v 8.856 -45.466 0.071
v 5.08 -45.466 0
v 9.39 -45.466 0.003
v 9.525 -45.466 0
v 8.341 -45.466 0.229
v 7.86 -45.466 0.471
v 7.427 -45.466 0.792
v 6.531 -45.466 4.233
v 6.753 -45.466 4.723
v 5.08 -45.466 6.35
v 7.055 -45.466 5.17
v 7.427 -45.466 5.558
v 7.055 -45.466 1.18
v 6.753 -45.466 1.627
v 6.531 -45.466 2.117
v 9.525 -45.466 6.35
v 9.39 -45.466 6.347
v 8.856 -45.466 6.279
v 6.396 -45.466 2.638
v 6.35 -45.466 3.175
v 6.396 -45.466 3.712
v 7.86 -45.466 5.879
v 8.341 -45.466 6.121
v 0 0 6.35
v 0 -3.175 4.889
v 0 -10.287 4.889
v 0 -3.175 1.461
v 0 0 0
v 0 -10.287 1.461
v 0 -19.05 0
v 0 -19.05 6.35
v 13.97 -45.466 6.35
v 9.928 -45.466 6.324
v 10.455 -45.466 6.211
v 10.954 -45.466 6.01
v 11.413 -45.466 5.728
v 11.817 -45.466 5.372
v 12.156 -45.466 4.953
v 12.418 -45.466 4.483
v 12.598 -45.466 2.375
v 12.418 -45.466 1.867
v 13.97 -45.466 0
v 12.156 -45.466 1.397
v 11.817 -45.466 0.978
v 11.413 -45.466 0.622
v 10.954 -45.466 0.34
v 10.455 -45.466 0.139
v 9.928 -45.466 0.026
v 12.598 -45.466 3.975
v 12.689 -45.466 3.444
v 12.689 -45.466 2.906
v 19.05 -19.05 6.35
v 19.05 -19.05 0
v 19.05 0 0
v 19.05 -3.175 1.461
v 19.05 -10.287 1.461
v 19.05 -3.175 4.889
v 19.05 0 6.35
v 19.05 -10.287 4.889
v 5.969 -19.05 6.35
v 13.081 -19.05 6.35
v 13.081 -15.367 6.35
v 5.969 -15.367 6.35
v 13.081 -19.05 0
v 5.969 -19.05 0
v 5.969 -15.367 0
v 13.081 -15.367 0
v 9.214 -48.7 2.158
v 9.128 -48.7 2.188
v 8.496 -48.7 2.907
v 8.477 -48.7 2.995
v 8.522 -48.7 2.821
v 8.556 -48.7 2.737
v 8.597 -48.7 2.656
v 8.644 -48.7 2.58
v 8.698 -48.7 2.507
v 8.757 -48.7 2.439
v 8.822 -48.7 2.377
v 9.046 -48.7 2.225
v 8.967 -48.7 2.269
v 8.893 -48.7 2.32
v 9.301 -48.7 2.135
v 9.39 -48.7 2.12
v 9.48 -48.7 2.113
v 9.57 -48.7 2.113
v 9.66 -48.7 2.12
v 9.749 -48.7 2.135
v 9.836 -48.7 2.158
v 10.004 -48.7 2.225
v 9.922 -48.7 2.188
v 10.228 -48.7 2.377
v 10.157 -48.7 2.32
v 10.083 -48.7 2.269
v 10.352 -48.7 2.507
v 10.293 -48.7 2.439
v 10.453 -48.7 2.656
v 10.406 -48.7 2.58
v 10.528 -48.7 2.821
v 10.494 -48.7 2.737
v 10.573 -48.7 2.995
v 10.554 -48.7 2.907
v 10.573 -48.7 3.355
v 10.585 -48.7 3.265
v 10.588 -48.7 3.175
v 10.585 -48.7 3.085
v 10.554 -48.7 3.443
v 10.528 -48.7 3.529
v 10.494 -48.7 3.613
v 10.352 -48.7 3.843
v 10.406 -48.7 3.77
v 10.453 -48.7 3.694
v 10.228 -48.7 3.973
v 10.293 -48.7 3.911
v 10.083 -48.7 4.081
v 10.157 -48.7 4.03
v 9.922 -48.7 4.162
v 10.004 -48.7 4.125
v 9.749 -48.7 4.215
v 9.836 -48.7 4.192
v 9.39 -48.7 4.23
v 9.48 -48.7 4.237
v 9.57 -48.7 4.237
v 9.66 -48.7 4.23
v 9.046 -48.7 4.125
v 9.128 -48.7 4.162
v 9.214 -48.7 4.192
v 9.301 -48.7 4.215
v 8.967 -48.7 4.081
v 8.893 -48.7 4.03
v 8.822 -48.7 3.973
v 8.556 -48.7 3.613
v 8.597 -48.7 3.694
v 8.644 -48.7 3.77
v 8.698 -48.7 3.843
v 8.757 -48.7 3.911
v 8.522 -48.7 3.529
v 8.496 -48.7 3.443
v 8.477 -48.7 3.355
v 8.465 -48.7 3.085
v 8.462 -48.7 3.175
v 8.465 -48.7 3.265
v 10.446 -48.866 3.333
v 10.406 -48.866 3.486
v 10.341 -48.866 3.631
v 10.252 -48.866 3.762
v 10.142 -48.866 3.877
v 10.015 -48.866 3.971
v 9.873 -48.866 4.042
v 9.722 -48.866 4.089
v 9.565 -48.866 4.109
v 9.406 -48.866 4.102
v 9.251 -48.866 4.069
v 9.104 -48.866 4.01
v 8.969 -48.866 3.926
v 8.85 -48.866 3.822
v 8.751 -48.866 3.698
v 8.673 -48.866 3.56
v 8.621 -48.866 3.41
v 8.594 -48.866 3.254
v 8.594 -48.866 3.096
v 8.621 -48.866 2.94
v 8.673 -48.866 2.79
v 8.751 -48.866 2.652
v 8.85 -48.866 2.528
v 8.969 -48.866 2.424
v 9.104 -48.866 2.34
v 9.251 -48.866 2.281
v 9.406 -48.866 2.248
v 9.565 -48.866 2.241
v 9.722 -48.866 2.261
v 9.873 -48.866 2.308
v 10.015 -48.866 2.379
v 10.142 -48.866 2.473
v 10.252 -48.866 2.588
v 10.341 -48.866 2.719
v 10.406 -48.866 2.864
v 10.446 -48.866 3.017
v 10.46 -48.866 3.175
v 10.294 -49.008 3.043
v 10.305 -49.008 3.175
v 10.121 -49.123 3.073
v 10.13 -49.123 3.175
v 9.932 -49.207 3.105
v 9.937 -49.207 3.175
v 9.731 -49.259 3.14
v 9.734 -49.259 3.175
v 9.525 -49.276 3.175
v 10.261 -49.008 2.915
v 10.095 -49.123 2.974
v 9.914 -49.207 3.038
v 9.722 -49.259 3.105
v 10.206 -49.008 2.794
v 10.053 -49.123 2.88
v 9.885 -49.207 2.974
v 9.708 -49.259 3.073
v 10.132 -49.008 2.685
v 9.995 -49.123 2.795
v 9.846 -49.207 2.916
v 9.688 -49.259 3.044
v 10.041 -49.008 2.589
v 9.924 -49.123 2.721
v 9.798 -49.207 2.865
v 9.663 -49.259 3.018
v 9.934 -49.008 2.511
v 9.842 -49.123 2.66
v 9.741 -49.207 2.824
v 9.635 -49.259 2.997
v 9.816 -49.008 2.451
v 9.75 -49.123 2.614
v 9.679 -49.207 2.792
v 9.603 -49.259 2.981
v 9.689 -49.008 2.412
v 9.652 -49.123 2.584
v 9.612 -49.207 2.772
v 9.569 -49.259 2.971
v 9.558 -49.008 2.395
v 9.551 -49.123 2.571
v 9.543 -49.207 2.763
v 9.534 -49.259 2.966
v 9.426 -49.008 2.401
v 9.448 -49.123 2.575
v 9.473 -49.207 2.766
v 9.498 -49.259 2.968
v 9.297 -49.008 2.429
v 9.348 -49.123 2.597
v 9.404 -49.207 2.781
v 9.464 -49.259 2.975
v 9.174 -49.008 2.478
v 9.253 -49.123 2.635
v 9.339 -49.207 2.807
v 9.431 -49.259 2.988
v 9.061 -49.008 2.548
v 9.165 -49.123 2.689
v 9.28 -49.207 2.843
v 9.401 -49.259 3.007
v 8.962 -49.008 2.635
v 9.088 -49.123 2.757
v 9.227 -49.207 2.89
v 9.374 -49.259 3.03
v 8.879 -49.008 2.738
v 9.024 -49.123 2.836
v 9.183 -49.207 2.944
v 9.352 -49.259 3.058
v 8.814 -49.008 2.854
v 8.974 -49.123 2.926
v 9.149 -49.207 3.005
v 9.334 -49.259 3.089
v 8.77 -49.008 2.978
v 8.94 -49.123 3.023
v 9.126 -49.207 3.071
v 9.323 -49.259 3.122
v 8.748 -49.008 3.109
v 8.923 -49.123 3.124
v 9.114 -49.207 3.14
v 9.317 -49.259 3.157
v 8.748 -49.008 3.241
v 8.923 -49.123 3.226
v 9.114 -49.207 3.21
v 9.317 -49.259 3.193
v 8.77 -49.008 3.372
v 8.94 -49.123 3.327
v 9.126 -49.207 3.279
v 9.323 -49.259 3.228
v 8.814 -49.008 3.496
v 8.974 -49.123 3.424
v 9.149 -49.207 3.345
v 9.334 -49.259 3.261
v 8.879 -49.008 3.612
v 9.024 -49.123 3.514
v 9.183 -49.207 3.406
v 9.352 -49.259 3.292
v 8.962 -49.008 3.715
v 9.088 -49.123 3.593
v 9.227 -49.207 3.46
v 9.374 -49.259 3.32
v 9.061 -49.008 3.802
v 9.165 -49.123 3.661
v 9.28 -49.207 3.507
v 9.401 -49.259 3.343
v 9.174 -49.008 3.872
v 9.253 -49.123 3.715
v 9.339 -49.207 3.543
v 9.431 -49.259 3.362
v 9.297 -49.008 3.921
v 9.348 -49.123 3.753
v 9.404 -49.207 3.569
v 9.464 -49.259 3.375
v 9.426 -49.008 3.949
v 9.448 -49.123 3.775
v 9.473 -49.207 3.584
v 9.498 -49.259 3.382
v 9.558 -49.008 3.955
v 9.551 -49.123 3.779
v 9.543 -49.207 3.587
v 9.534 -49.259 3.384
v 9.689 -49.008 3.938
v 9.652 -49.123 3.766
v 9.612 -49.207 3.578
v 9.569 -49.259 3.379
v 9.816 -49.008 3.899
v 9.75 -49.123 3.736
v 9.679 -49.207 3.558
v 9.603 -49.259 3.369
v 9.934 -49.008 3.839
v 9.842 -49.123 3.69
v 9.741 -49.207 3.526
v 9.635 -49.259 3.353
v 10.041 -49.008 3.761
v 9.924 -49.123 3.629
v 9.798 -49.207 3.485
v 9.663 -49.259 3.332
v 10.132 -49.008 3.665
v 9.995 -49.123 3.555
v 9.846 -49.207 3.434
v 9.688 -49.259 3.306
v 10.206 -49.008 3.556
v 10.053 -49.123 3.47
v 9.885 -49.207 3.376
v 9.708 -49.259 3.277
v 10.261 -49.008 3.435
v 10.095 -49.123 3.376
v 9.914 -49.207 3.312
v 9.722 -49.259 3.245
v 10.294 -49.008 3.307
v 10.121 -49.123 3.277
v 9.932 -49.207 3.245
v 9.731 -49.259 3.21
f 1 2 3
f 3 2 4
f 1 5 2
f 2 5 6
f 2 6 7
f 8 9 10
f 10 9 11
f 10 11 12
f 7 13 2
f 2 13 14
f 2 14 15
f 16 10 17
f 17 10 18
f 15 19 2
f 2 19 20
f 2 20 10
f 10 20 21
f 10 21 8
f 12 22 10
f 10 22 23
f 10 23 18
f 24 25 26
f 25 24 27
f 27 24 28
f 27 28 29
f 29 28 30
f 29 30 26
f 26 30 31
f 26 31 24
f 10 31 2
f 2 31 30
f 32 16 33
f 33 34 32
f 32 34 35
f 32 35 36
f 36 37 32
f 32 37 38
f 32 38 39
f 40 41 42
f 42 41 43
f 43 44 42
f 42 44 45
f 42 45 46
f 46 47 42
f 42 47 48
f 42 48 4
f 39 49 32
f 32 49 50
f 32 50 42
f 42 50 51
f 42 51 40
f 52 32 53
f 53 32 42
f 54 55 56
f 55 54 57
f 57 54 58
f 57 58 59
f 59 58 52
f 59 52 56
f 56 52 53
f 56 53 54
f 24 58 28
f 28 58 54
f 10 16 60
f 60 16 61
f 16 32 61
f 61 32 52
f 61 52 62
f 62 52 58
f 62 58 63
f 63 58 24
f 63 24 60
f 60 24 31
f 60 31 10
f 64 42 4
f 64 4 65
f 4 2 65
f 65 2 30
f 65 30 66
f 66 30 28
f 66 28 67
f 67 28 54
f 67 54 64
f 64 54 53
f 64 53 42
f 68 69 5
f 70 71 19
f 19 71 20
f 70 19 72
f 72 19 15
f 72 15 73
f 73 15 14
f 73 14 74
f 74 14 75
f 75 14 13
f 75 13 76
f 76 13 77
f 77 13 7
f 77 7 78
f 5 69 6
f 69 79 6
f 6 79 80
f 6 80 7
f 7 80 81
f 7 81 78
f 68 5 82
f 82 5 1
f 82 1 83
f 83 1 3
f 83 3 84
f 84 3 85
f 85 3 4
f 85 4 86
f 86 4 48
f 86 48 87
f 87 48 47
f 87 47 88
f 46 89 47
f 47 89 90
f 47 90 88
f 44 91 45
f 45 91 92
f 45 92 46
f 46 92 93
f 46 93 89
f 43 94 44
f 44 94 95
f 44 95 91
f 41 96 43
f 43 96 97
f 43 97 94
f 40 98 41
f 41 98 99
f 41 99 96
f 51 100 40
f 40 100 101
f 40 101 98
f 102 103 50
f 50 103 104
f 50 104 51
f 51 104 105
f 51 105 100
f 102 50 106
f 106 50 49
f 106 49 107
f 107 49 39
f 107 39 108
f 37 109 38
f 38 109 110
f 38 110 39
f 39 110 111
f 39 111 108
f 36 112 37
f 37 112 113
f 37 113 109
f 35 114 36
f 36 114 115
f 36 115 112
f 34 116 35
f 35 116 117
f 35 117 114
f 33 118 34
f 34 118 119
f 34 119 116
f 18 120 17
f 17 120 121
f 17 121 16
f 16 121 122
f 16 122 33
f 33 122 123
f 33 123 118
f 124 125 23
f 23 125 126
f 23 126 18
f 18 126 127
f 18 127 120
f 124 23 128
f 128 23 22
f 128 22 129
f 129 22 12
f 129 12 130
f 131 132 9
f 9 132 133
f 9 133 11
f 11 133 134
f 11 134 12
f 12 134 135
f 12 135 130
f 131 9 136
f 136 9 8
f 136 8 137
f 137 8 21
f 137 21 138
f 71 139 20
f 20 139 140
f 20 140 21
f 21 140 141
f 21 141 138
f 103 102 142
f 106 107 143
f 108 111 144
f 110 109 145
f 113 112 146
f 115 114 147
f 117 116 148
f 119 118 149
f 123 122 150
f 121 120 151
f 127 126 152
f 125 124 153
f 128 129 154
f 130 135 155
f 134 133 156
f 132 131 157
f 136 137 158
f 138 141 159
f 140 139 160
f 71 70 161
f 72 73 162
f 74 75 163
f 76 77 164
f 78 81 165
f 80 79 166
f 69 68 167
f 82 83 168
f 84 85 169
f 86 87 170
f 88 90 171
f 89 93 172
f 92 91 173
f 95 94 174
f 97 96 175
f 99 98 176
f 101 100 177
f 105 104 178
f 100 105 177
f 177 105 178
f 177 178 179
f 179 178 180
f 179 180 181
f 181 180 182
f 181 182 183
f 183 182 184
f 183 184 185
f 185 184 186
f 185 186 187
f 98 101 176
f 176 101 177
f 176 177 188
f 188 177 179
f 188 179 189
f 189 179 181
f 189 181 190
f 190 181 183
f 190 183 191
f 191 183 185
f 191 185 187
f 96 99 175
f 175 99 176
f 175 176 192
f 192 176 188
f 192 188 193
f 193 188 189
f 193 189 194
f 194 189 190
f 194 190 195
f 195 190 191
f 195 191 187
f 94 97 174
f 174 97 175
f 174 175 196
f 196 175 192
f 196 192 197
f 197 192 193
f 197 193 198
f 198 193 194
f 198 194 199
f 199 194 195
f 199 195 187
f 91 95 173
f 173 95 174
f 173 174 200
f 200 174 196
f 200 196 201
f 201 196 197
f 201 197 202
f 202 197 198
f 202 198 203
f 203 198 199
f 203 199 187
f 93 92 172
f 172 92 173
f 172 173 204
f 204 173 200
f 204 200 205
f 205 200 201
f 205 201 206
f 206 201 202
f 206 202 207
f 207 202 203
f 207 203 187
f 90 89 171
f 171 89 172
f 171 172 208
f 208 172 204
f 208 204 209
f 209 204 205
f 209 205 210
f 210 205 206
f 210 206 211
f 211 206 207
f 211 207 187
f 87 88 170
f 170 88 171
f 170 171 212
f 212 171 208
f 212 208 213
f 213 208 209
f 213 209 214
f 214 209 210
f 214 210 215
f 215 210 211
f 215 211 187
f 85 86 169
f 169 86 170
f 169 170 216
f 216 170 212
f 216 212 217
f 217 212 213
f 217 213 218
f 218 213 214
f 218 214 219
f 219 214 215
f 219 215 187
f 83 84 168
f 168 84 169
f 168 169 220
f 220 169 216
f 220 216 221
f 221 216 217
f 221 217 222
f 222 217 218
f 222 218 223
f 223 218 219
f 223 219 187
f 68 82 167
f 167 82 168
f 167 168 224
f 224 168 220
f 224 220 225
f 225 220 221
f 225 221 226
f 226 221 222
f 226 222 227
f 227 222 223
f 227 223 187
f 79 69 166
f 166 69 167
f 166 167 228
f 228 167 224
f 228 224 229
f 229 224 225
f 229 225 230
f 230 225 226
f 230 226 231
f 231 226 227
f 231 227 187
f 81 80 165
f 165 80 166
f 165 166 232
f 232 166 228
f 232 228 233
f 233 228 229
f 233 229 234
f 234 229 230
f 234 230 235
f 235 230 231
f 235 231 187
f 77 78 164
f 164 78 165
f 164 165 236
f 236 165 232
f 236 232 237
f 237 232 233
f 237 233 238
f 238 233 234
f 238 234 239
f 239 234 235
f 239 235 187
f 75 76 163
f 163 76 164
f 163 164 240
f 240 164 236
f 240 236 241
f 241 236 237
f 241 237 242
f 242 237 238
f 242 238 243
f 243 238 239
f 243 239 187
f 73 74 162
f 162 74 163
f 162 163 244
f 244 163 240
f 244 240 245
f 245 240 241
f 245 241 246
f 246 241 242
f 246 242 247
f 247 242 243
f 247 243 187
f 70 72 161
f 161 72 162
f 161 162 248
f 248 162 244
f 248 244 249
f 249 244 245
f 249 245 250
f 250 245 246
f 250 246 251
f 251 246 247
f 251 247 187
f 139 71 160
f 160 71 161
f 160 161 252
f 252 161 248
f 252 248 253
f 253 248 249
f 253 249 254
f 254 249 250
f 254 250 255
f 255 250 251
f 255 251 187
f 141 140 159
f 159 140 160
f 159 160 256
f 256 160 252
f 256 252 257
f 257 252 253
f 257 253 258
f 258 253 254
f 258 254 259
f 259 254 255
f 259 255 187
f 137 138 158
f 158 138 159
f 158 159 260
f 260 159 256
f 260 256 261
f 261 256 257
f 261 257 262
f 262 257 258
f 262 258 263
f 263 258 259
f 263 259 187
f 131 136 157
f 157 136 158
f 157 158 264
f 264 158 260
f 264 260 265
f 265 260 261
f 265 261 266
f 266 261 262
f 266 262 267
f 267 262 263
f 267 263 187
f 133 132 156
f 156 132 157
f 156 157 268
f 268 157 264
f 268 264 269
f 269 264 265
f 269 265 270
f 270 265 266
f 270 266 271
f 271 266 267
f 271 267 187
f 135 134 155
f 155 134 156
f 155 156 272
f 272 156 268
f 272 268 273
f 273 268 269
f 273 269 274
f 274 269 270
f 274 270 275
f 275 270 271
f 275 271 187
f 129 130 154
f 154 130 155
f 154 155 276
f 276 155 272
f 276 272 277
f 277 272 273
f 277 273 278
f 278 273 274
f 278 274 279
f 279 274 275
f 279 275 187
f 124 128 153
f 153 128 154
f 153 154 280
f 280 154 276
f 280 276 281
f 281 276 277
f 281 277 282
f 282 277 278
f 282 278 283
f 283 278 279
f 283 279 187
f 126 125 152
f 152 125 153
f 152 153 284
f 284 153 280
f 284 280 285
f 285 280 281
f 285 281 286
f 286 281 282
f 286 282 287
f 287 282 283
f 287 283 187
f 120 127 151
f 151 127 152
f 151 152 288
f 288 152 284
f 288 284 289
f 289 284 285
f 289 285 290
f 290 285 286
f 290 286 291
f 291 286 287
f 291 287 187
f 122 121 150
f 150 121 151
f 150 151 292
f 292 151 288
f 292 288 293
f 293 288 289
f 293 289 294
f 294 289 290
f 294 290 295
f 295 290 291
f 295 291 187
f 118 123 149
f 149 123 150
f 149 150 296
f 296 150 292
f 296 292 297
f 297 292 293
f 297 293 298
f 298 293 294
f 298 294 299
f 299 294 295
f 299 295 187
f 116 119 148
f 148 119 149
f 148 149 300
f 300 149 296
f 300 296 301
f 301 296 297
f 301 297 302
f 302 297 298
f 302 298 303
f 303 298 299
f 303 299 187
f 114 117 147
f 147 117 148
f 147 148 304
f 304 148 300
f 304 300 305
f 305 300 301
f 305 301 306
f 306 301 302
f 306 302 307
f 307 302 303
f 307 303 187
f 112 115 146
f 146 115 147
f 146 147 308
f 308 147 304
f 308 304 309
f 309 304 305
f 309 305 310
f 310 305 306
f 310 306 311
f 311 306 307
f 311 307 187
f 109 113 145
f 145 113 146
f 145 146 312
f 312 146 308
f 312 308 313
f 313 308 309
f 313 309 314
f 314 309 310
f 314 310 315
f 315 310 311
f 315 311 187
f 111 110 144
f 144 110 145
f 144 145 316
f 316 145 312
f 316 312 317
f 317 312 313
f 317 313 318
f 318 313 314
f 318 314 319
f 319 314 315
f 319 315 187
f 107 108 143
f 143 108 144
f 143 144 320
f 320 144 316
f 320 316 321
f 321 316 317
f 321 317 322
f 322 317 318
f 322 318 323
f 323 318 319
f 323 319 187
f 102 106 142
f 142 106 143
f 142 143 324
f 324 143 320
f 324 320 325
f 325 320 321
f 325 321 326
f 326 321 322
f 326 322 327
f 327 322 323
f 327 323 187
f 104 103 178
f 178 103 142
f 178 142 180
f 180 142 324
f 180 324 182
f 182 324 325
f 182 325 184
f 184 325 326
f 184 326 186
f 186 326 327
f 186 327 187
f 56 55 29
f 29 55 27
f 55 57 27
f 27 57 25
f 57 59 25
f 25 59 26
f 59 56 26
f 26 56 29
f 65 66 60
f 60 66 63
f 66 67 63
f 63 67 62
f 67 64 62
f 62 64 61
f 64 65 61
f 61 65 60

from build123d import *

# Parameters (mm, degrees)
BOSS_EXTRUDE1_DEPTH = 6.35
SKETCH3_W           = 3.429
SKETCH3_H           = 7.112
CUT_EXTRUDE1_DEPTH  = 20.05
SKETCH4_W           = 7.112
SKETCH4_H           = 3.683
CUT_EXTRUDE2_DEPTH  = 7.35


with BuildPart() as part:
    # Sketch1 → Boss-Extrude1 (new body)
    with BuildSketch(Plane.XY):
        Polygon((0, -19.05), (5.08, -45.466), (13.97, -45.466), (19.05, -19.05), (19.05, 0), (0, 0), align=None)
    extrude(amount=BOSS_EXTRUDE1_DEPTH)

    # Sketch2 → Revolve1 (revolve)
    with BuildSketch(Plane.XY.offset(3.175)):
        with BuildLine():
            Line((9.525, -45.466), (12.7, -45.466))
            Line((12.7, -45.466), (10.588425211, -48.700281514))
            ThreePointArc((10.588425211, -48.700281514), (10.129633144, -49.122834259), (9.525, -49.276))
            Line((9.525, -49.276), (9.525, -45.466))
        make_face()
    revolve(axis=Axis((9.525, -49.276, 3.175), (0, 1, 0)))

    # Sketch3 → Cut-Extrude1 (cut, through all)
    with BuildSketch(Plane.ZY):
        with Locations((3.175, -6.731)):
            Rectangle(SKETCH3_W, SKETCH3_H)
    extrude(amount=-CUT_EXTRUDE1_DEPTH, mode=Mode.SUBTRACT)

    # Sketch4 → Cut-Extrude2 (cut, through all)
    with BuildSketch(Plane.XY.offset(6.35)):
        with Locations((9.525, -17.2085)):
            Rectangle(SKETCH4_W, SKETCH4_H)
    extrude(amount=-CUT_EXTRUDE2_DEPTH, mode=Mode.SUBTRACT)


solid = part.part
